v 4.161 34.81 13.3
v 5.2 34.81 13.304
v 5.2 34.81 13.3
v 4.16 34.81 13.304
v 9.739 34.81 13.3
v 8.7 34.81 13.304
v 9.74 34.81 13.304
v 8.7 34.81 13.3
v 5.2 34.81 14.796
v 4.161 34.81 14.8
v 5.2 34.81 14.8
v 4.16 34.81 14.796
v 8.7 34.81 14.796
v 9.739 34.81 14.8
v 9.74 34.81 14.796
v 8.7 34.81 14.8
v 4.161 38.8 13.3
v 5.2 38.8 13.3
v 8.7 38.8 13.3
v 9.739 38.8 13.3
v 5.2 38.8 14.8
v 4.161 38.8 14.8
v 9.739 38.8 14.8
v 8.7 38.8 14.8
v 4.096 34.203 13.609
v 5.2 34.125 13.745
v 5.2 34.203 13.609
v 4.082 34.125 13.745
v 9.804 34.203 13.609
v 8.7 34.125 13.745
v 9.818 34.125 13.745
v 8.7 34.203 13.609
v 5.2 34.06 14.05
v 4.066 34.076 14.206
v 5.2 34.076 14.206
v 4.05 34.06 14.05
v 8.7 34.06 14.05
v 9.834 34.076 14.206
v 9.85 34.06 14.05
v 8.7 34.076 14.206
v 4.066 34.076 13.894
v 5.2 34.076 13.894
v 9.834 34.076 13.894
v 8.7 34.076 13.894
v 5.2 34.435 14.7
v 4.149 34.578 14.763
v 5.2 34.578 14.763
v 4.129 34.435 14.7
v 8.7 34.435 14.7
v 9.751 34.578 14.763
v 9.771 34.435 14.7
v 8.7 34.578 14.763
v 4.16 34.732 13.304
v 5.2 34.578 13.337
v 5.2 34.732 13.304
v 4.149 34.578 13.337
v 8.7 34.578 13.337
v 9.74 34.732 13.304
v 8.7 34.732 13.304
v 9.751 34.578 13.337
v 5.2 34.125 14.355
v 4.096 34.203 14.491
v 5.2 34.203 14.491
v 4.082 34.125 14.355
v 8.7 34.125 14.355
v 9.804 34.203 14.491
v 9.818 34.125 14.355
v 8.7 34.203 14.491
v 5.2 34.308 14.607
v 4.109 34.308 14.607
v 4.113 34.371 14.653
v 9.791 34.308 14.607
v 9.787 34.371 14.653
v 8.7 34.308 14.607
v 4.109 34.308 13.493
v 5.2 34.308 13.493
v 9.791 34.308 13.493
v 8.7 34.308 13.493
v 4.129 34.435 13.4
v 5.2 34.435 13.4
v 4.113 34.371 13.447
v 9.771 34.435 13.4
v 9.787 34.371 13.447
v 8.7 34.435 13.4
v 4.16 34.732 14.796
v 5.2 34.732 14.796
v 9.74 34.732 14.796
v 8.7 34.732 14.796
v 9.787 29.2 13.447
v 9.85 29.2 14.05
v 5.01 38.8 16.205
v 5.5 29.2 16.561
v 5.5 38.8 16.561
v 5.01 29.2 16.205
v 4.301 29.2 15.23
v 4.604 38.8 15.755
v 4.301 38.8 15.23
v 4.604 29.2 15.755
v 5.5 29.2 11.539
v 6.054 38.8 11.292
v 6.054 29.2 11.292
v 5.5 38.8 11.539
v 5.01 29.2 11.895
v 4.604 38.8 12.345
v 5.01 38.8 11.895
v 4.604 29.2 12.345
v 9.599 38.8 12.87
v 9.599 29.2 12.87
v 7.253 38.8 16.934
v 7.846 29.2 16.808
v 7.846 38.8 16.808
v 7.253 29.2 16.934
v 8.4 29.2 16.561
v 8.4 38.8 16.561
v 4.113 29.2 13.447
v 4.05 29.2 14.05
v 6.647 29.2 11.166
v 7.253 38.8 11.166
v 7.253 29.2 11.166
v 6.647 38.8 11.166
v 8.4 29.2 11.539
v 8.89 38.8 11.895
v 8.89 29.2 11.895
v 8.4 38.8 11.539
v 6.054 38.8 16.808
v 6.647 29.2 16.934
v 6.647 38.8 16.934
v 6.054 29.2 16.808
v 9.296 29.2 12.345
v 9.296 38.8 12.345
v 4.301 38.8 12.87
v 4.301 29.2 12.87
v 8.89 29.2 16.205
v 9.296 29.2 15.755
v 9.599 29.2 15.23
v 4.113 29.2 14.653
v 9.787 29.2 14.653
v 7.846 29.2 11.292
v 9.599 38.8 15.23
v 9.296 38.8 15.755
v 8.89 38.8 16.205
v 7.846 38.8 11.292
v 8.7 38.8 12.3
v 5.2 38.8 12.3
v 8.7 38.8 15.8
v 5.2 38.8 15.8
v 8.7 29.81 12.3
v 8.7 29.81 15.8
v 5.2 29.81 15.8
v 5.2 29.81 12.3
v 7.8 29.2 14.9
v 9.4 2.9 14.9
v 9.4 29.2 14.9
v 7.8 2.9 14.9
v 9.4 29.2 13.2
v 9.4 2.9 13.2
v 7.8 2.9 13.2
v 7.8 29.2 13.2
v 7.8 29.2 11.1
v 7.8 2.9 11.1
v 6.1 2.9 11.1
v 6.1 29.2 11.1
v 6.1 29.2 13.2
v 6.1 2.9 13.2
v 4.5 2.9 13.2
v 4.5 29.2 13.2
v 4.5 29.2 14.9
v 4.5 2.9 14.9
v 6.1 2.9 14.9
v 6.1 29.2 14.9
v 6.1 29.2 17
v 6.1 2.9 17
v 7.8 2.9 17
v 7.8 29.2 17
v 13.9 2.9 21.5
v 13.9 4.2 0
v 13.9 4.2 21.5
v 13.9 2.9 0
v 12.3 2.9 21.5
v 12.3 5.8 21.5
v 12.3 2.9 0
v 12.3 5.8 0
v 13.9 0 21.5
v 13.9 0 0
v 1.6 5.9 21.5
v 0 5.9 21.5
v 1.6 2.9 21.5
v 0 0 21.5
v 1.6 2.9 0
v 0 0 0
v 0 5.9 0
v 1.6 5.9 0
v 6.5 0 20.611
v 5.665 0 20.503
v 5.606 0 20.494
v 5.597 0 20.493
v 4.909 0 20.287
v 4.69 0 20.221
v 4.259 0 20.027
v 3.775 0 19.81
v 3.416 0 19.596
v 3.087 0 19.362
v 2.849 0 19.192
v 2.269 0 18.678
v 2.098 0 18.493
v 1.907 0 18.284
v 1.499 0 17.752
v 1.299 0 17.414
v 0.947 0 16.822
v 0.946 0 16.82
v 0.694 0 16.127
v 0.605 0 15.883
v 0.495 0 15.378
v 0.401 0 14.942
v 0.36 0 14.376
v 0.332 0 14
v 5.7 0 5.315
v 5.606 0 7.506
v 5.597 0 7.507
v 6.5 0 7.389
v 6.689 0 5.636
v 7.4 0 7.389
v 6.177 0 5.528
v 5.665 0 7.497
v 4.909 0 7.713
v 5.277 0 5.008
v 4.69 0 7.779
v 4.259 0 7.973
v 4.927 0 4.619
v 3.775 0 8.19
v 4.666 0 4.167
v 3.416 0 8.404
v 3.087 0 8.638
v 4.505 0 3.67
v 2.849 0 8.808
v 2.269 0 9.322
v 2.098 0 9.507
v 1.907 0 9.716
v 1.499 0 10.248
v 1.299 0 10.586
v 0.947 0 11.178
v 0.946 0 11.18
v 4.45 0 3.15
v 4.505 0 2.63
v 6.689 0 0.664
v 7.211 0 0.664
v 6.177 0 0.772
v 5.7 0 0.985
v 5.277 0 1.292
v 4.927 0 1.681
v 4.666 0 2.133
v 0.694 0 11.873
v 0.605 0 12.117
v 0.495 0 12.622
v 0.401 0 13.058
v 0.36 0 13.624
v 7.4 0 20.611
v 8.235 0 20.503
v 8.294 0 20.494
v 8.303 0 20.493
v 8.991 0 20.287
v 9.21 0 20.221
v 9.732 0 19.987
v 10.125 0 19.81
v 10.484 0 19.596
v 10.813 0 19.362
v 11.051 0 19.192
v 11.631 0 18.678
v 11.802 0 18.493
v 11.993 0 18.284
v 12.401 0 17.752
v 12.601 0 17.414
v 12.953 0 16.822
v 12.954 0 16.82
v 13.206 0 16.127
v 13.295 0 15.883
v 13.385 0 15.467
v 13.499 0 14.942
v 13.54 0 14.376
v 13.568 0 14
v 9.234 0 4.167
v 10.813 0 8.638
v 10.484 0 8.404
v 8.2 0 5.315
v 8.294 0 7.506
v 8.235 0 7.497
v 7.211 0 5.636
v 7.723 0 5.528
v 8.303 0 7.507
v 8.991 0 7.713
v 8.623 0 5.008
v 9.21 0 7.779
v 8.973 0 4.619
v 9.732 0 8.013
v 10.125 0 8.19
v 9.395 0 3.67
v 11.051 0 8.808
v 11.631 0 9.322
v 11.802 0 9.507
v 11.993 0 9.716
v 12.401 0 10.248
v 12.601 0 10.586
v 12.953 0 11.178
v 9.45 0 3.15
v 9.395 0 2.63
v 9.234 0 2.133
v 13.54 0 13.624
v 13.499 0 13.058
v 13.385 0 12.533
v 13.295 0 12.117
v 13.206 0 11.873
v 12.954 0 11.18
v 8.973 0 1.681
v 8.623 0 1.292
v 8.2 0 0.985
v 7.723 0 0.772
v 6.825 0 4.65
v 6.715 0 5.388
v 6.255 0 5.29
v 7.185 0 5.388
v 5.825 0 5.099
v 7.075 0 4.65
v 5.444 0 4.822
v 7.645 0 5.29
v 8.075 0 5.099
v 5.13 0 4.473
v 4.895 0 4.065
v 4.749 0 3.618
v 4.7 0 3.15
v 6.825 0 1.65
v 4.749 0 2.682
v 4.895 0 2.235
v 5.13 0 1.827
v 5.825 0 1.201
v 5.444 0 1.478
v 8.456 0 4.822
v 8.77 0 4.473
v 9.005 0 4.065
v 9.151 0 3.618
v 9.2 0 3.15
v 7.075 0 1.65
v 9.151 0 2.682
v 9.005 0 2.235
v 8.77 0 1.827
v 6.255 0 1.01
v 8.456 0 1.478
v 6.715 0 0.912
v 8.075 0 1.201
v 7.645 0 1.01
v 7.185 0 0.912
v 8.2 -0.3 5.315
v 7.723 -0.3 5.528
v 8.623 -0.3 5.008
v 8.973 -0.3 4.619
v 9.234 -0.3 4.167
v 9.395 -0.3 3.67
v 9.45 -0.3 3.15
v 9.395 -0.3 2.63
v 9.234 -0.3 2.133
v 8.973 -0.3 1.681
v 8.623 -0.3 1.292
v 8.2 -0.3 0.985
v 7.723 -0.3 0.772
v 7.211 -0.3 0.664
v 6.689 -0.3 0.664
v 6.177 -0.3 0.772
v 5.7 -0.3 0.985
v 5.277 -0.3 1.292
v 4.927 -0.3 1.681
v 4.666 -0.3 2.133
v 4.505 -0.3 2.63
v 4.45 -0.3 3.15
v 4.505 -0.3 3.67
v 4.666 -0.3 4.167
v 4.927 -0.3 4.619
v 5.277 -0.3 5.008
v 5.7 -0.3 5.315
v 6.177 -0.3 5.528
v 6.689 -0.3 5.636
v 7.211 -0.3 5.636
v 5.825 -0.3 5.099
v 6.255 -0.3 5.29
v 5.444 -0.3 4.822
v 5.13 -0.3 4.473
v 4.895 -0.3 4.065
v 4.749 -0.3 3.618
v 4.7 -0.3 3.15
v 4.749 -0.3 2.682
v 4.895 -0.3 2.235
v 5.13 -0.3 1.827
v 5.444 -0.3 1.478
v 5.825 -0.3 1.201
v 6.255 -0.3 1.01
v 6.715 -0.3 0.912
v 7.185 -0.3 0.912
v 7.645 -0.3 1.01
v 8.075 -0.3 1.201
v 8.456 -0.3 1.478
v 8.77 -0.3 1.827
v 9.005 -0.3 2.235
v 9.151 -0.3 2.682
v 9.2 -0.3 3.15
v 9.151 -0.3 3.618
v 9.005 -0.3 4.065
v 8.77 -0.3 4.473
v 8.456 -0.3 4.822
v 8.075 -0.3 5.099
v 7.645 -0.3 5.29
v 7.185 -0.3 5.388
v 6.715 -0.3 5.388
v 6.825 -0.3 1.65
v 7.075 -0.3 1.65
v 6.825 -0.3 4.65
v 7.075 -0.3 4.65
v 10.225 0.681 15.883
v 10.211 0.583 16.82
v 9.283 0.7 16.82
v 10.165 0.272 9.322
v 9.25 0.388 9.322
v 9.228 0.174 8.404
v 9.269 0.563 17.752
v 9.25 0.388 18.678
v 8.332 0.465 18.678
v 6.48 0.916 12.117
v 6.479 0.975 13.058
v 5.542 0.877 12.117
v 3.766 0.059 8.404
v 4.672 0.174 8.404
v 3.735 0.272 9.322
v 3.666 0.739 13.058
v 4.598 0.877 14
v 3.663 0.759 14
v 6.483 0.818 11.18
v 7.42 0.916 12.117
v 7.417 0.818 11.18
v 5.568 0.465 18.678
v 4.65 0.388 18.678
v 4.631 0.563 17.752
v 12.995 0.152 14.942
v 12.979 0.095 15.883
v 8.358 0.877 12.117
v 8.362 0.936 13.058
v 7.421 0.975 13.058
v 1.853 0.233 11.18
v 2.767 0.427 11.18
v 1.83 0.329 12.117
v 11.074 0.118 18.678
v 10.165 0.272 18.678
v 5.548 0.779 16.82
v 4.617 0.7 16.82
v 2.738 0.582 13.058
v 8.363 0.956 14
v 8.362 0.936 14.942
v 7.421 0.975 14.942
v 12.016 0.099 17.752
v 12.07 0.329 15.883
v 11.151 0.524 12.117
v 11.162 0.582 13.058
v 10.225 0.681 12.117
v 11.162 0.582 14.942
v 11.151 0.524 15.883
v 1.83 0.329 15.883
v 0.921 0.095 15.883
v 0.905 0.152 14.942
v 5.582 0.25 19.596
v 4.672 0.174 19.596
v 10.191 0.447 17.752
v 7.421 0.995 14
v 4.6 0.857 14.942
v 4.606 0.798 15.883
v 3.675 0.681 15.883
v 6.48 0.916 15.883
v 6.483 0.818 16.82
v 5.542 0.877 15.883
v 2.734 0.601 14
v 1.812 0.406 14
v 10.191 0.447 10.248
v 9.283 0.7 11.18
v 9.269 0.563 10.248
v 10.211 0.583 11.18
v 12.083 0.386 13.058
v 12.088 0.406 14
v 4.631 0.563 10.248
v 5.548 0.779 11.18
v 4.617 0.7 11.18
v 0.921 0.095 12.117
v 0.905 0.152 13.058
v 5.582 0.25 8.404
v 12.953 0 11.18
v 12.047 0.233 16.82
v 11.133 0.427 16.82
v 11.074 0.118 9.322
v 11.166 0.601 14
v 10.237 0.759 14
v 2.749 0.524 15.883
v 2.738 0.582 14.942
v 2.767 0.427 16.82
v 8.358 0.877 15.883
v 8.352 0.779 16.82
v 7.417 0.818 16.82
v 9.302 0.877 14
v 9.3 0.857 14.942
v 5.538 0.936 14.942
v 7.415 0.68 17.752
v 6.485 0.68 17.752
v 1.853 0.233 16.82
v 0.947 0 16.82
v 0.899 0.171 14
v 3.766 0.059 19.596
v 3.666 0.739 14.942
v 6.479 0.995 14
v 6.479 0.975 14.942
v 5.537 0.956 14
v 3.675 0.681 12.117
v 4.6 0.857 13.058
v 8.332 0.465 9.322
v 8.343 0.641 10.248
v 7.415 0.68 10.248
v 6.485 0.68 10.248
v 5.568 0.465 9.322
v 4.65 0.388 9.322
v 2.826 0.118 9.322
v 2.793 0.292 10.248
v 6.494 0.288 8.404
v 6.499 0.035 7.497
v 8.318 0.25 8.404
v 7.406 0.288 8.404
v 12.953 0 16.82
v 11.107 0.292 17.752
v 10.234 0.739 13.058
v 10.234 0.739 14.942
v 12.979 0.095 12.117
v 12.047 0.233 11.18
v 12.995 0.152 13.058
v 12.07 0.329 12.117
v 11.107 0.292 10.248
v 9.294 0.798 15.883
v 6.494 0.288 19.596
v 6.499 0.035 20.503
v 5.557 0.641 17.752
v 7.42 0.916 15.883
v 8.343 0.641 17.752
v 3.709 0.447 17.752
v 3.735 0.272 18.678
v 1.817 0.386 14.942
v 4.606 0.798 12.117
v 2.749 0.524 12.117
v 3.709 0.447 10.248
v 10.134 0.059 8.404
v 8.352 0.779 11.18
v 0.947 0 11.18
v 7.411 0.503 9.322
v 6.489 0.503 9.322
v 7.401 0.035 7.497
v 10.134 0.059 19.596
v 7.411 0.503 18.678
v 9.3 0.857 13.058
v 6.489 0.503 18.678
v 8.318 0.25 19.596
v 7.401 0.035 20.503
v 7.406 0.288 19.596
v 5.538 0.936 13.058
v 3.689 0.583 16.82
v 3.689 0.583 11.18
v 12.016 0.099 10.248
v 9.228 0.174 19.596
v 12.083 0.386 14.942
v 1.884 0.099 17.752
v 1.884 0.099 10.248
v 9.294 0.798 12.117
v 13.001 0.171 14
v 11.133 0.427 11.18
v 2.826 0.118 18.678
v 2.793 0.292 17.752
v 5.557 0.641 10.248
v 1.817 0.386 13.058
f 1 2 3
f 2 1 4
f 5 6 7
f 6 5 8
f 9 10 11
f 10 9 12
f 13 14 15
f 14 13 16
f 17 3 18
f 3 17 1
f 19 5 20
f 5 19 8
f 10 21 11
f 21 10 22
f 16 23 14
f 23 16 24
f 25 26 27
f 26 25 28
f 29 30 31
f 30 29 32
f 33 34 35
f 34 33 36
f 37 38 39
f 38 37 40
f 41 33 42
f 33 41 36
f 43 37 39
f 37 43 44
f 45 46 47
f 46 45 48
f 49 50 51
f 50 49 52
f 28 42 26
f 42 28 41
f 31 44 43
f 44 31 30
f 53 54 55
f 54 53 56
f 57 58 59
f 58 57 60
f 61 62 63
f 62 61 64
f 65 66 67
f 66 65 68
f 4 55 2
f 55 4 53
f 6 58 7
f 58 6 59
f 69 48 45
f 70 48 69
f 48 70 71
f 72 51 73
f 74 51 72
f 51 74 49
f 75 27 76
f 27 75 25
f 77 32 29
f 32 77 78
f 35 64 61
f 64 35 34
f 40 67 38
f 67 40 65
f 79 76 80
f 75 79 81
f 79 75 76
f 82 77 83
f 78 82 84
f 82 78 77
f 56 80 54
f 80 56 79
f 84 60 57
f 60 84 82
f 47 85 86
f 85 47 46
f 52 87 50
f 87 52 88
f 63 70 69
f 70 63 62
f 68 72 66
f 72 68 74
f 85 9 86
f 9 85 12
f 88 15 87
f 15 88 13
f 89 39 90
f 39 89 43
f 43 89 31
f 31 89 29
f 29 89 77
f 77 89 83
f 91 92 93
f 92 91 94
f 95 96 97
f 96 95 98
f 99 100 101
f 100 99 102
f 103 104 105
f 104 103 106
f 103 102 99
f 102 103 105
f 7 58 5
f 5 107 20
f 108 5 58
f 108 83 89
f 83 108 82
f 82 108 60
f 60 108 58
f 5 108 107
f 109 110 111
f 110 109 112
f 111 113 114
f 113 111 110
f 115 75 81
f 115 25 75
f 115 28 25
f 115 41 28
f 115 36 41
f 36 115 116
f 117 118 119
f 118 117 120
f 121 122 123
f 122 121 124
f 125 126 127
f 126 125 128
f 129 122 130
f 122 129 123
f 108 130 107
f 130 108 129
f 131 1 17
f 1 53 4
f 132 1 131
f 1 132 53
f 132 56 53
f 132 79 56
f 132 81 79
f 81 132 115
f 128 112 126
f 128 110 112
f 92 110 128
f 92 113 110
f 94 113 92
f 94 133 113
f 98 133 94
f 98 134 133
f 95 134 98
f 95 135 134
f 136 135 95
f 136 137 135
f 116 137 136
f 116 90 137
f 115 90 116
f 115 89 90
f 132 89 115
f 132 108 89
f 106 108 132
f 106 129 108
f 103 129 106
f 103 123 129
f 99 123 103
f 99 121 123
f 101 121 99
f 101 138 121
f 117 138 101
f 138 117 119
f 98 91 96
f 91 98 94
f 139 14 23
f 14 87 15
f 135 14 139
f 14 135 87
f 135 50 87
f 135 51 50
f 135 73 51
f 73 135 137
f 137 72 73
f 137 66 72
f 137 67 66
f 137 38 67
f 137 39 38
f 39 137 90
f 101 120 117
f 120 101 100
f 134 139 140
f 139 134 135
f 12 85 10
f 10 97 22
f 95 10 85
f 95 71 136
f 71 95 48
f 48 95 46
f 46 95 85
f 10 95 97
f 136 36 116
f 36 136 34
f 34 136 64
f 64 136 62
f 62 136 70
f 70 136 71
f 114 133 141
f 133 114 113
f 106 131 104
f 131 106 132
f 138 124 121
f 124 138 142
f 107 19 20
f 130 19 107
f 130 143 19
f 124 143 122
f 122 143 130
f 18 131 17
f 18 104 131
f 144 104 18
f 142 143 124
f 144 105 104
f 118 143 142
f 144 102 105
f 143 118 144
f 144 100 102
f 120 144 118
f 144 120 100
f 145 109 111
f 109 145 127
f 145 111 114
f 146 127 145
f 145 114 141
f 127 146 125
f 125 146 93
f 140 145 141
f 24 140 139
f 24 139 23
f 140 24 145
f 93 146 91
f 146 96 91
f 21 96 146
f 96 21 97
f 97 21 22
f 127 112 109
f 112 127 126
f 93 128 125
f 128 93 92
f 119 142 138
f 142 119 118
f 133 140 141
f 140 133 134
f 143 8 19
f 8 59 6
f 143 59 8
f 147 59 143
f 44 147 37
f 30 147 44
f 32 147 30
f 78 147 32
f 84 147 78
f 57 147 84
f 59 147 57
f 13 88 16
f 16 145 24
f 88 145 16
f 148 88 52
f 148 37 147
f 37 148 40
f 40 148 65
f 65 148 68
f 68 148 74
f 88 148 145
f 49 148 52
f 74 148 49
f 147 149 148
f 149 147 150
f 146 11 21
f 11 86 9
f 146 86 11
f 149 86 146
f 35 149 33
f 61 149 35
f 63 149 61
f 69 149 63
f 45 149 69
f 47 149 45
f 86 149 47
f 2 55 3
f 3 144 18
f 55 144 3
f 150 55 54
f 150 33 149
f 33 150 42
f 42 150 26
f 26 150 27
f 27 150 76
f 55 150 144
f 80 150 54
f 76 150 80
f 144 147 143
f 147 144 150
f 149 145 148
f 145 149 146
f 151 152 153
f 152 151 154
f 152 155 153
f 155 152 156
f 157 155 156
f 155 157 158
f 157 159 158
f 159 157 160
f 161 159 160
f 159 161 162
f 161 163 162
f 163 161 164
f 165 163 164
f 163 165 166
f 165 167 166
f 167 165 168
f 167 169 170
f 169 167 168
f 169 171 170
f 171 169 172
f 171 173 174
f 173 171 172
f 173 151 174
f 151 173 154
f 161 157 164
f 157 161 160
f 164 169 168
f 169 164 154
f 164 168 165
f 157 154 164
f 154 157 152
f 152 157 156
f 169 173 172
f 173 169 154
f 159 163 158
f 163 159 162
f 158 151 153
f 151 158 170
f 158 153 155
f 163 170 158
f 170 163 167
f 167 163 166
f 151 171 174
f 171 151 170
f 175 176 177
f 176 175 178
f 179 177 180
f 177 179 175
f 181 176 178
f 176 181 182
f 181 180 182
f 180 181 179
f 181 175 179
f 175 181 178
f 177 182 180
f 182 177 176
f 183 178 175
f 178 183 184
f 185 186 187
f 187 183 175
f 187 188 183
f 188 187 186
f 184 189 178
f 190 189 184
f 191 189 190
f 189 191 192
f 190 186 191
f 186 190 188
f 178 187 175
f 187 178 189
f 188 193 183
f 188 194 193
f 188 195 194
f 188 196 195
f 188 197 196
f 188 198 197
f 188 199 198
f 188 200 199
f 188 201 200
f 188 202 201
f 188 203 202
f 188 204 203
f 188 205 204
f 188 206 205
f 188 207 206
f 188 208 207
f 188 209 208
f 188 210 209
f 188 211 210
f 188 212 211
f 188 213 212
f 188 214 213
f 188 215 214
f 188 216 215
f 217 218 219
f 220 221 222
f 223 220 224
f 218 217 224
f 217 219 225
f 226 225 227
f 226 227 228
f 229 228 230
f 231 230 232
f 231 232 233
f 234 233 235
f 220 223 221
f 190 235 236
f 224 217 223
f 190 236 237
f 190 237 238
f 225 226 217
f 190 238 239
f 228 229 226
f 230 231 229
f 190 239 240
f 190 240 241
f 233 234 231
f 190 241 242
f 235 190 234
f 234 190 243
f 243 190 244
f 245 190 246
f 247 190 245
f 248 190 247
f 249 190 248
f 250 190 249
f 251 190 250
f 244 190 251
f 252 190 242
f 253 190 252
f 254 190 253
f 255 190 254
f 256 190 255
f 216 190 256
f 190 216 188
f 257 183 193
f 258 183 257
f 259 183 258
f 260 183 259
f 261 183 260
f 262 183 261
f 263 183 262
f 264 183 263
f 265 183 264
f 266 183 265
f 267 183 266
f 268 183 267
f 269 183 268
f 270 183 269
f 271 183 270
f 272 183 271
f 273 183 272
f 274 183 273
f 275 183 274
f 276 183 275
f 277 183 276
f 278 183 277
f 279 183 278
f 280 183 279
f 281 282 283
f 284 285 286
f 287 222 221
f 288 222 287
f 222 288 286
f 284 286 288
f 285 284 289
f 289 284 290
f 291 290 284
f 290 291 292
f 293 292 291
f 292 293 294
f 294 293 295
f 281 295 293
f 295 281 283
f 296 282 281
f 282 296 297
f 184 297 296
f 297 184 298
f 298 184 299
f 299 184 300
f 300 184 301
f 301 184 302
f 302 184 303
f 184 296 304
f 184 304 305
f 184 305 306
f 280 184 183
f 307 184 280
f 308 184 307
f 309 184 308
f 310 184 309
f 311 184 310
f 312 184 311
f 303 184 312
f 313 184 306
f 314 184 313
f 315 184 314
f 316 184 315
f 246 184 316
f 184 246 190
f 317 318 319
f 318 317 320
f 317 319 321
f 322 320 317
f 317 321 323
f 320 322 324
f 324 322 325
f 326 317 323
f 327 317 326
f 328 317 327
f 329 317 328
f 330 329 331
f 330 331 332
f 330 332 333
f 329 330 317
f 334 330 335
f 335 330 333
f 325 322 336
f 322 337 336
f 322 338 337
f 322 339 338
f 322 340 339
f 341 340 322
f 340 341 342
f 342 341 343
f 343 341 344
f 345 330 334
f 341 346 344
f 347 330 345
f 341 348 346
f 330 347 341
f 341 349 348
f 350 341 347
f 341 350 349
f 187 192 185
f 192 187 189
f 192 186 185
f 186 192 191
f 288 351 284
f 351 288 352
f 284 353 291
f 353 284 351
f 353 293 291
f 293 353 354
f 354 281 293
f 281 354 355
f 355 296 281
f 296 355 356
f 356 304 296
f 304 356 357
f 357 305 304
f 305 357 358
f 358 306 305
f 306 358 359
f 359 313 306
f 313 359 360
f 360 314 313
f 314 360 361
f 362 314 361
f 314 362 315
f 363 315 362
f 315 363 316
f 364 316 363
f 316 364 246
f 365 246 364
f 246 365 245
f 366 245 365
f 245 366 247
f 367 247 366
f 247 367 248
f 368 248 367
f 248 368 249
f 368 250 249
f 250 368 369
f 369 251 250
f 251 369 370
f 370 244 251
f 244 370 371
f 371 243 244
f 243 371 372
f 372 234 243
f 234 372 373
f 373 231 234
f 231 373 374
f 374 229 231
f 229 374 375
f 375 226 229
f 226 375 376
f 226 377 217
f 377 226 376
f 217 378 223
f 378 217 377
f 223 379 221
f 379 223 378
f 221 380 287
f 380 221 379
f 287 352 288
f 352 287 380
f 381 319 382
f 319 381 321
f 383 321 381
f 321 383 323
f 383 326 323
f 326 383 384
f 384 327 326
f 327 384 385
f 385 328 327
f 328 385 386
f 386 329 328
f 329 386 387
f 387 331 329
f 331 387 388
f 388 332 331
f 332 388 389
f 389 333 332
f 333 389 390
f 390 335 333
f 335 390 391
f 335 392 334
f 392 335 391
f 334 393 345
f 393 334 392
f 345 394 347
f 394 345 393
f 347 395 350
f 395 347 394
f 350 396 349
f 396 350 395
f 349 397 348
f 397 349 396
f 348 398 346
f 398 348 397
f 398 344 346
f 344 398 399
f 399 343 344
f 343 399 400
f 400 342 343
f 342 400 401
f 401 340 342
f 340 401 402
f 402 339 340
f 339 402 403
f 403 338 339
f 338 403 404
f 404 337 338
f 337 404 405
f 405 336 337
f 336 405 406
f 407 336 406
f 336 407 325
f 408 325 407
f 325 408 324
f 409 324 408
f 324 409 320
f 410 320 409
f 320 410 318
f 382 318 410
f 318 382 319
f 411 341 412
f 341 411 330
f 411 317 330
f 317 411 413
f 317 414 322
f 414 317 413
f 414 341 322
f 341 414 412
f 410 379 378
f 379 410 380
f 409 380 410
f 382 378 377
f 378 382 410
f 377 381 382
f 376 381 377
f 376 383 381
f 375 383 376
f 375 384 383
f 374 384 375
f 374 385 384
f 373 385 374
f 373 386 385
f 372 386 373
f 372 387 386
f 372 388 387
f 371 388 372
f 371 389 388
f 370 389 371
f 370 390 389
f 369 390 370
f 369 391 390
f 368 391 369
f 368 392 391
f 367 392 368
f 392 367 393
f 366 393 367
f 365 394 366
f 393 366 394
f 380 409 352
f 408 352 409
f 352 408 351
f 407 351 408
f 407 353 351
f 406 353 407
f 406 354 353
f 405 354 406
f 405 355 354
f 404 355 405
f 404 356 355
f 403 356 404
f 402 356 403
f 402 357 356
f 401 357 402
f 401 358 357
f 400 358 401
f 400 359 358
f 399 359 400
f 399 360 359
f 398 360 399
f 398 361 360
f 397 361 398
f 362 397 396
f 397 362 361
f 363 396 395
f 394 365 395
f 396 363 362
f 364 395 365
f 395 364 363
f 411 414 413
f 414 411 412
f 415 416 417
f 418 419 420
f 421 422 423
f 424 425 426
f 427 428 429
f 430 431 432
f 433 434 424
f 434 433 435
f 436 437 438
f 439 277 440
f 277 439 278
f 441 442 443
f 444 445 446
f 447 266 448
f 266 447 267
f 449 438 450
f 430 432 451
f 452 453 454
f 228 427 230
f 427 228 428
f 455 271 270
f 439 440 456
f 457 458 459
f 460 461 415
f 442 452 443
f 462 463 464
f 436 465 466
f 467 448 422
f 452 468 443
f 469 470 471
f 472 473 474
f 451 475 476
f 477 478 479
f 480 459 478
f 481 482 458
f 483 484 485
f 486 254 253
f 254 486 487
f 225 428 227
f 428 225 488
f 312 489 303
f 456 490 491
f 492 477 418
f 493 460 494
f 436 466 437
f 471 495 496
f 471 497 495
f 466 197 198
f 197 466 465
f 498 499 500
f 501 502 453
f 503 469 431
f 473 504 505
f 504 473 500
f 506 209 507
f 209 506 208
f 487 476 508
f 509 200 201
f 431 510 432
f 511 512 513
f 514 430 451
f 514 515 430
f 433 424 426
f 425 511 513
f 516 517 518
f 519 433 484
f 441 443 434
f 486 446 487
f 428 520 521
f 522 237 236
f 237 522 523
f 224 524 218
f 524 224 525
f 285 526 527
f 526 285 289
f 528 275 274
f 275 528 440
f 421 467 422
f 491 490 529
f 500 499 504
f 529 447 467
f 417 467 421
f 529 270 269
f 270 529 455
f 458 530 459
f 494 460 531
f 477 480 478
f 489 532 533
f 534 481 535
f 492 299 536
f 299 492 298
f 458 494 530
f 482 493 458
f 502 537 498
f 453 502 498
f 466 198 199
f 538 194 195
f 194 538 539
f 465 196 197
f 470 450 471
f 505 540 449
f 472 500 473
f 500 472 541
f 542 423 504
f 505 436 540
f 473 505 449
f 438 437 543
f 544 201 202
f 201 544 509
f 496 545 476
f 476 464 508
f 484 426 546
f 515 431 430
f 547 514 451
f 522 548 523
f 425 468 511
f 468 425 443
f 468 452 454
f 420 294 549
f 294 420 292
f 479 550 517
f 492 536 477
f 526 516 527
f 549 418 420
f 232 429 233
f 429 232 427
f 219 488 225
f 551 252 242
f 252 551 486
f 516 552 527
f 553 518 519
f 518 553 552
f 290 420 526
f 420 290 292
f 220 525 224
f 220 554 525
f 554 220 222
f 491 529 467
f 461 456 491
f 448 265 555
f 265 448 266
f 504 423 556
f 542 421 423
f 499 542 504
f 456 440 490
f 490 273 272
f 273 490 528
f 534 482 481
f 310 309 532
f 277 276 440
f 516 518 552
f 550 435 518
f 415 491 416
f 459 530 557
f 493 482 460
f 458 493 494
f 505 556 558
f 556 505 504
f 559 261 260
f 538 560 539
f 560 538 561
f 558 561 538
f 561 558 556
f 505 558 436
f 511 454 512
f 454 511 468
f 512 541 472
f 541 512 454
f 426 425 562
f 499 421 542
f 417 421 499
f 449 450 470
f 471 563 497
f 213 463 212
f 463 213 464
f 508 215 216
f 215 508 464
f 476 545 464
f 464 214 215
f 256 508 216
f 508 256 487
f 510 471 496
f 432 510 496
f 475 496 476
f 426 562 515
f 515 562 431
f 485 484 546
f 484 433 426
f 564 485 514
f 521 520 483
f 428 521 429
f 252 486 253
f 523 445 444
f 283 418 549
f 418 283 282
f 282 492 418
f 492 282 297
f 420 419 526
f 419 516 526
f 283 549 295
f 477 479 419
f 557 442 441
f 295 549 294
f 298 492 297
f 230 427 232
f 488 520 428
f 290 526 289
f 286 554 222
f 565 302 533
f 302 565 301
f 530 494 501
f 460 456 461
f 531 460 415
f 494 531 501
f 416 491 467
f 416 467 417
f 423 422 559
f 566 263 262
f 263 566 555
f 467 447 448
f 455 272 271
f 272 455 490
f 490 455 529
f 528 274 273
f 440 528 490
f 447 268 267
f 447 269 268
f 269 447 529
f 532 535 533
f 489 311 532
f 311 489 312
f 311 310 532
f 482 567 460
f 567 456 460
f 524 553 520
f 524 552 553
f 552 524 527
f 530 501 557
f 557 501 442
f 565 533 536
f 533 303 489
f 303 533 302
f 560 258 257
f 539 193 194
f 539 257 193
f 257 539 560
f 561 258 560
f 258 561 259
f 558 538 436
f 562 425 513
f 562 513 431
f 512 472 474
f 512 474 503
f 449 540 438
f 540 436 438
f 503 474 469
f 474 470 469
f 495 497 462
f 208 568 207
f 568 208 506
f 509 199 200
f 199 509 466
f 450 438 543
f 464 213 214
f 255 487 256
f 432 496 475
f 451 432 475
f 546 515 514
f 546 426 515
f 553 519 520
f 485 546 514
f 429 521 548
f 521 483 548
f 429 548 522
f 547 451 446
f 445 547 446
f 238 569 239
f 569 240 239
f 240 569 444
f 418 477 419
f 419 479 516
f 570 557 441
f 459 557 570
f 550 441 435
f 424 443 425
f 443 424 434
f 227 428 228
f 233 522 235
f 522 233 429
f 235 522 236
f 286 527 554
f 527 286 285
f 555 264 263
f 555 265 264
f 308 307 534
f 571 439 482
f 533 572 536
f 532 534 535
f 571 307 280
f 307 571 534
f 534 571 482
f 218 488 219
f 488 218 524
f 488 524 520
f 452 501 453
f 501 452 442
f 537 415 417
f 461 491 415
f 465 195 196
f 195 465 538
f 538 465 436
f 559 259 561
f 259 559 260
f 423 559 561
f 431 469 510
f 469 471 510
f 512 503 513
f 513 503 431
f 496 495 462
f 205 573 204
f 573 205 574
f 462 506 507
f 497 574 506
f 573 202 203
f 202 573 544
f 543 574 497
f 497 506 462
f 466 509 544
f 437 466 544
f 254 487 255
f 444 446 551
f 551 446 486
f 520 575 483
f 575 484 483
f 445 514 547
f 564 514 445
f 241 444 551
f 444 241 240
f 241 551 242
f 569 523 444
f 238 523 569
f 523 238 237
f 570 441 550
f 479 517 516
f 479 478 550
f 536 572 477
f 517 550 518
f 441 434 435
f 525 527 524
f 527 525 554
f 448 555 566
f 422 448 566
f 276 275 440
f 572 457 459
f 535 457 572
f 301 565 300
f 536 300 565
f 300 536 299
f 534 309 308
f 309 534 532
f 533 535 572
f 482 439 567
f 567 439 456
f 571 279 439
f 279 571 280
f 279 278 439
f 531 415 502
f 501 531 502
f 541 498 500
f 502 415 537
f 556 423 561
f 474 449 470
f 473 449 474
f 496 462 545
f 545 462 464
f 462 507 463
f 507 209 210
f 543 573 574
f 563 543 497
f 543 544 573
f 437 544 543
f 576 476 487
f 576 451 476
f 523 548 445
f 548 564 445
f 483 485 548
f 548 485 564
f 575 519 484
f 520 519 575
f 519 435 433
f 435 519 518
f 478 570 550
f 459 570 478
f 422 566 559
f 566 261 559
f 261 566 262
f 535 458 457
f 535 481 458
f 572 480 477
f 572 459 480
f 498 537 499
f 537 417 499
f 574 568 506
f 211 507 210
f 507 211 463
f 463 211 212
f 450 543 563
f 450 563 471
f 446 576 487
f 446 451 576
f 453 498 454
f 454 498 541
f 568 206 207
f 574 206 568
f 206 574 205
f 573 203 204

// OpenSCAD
// OpenSCAD definition for an Acorn Risc PC Power Button
//
// by David Thomas, 28-Jan-25
//

epsilon = 0.01; // aka bodge factor

width = 13.9;
height = 21.5;
depth = 2.9;

sidewidth = 1.6;
leftdepth = 3;
rightdepth = 2.9;

stemwidth = 4.9;
stemheight = 5.9;
stemdepth = 26.3;
stemmiddle = 1.7;

cyldia = 5.8; // 5.9 wide, 5.7 high as measured but using an average here
cyldepth = 9.6;
cyldetail = 30;

cylcutout = 3.5;
cylcutoutdepth = 9.0;

mouthwidth = 10;
mouthheight = 1.5;
mouthdepth = 4;

symboldia = 5;
symboldepth = 0.3;
symbol_y = 6.3 / 2; // from bottom
symboldetail = cyldetail;
symbolthickness = 0.25;

pushsize = 45; // sphere diameter
pushdepth = 1;
push_y = 14; // from bottom
pushdetail = 150;

difference() {
	union() {
		// front
		button = [width, depth, height];
		cube(size = button);

		// stem
		translate([width / 2, depth, 17 - stemheight / 2])
			rotate([-90, 0, 0])
				union() {
					// cross part
					linear_extrude(stemdepth)
						union() {
							square([stemmiddle, stemheight], center = true);
							square([stemwidth, stemmiddle], center = true);
						}

					// cylinder part
					translate([0, 0, stemdepth + cyldepth / 2]) {
						difference() {
							cylinder(h = cyldepth, r = cyldia / 2, center = true, $fn = cyldetail);
                            
                            // cut out the square section
							translate([0, 0, (cyldepth - cylcutoutdepth) / 2 + epsilon])
								cube([cylcutout, cylcutout, cylcutoutdepth], center = true);

                            // cut out the mouth section
							translate([0, 0, (cyldepth - mouthdepth) / 2 + epsilon]) {
								cube([mouthwidth, mouthheight, mouthdepth], center = true);
                                
                                // round off the mouth section
                                translate([0, 0, -mouthdepth / 2])
                                    rotate([0, 90, 0])
                                        cylinder(h = mouthwidth, r = 0.75, center = true, $fn = cyldetail);
                            }
						}
					}
				}

		lefthand = [sidewidth, leftdepth, height];
		translate([0, depth, 0])
			cube(size = lefthand);

		righthand = [sidewidth, rightdepth, height];
		translate([width - sidewidth, depth, 0])
			difference() {
				cube(size = righthand);

				// using epsilon here to avoid edges colliding
				t = sidewidth;
				translate([0, rightdepth - t, -epsilon])
					linear_extrude(height + epsilon * 2)
						polygon(points=[[t + epsilon, -epsilon],
								[t + epsilon, t + epsilon],
								[-epsilon, t + epsilon]]);
			}

		// power symbol
		translate([width / 2, -symboldepth, symbol_y])
			rotate([-90, 0, 0])
				linear_extrude(1)
					union() {
						difference() {
							circle(d = symboldia, $fn = symboldetail);
							circle(d = symboldia - symbolthickness * 2, $fn = symboldetail);
						}
						square([symbolthickness, 3], center = true);
					}
	}

	// push impression
	translate([width / 2, -pushsize / 2 + pushdepth, push_y])
		sphere(d = pushsize, $fn = pushdetail);
}
